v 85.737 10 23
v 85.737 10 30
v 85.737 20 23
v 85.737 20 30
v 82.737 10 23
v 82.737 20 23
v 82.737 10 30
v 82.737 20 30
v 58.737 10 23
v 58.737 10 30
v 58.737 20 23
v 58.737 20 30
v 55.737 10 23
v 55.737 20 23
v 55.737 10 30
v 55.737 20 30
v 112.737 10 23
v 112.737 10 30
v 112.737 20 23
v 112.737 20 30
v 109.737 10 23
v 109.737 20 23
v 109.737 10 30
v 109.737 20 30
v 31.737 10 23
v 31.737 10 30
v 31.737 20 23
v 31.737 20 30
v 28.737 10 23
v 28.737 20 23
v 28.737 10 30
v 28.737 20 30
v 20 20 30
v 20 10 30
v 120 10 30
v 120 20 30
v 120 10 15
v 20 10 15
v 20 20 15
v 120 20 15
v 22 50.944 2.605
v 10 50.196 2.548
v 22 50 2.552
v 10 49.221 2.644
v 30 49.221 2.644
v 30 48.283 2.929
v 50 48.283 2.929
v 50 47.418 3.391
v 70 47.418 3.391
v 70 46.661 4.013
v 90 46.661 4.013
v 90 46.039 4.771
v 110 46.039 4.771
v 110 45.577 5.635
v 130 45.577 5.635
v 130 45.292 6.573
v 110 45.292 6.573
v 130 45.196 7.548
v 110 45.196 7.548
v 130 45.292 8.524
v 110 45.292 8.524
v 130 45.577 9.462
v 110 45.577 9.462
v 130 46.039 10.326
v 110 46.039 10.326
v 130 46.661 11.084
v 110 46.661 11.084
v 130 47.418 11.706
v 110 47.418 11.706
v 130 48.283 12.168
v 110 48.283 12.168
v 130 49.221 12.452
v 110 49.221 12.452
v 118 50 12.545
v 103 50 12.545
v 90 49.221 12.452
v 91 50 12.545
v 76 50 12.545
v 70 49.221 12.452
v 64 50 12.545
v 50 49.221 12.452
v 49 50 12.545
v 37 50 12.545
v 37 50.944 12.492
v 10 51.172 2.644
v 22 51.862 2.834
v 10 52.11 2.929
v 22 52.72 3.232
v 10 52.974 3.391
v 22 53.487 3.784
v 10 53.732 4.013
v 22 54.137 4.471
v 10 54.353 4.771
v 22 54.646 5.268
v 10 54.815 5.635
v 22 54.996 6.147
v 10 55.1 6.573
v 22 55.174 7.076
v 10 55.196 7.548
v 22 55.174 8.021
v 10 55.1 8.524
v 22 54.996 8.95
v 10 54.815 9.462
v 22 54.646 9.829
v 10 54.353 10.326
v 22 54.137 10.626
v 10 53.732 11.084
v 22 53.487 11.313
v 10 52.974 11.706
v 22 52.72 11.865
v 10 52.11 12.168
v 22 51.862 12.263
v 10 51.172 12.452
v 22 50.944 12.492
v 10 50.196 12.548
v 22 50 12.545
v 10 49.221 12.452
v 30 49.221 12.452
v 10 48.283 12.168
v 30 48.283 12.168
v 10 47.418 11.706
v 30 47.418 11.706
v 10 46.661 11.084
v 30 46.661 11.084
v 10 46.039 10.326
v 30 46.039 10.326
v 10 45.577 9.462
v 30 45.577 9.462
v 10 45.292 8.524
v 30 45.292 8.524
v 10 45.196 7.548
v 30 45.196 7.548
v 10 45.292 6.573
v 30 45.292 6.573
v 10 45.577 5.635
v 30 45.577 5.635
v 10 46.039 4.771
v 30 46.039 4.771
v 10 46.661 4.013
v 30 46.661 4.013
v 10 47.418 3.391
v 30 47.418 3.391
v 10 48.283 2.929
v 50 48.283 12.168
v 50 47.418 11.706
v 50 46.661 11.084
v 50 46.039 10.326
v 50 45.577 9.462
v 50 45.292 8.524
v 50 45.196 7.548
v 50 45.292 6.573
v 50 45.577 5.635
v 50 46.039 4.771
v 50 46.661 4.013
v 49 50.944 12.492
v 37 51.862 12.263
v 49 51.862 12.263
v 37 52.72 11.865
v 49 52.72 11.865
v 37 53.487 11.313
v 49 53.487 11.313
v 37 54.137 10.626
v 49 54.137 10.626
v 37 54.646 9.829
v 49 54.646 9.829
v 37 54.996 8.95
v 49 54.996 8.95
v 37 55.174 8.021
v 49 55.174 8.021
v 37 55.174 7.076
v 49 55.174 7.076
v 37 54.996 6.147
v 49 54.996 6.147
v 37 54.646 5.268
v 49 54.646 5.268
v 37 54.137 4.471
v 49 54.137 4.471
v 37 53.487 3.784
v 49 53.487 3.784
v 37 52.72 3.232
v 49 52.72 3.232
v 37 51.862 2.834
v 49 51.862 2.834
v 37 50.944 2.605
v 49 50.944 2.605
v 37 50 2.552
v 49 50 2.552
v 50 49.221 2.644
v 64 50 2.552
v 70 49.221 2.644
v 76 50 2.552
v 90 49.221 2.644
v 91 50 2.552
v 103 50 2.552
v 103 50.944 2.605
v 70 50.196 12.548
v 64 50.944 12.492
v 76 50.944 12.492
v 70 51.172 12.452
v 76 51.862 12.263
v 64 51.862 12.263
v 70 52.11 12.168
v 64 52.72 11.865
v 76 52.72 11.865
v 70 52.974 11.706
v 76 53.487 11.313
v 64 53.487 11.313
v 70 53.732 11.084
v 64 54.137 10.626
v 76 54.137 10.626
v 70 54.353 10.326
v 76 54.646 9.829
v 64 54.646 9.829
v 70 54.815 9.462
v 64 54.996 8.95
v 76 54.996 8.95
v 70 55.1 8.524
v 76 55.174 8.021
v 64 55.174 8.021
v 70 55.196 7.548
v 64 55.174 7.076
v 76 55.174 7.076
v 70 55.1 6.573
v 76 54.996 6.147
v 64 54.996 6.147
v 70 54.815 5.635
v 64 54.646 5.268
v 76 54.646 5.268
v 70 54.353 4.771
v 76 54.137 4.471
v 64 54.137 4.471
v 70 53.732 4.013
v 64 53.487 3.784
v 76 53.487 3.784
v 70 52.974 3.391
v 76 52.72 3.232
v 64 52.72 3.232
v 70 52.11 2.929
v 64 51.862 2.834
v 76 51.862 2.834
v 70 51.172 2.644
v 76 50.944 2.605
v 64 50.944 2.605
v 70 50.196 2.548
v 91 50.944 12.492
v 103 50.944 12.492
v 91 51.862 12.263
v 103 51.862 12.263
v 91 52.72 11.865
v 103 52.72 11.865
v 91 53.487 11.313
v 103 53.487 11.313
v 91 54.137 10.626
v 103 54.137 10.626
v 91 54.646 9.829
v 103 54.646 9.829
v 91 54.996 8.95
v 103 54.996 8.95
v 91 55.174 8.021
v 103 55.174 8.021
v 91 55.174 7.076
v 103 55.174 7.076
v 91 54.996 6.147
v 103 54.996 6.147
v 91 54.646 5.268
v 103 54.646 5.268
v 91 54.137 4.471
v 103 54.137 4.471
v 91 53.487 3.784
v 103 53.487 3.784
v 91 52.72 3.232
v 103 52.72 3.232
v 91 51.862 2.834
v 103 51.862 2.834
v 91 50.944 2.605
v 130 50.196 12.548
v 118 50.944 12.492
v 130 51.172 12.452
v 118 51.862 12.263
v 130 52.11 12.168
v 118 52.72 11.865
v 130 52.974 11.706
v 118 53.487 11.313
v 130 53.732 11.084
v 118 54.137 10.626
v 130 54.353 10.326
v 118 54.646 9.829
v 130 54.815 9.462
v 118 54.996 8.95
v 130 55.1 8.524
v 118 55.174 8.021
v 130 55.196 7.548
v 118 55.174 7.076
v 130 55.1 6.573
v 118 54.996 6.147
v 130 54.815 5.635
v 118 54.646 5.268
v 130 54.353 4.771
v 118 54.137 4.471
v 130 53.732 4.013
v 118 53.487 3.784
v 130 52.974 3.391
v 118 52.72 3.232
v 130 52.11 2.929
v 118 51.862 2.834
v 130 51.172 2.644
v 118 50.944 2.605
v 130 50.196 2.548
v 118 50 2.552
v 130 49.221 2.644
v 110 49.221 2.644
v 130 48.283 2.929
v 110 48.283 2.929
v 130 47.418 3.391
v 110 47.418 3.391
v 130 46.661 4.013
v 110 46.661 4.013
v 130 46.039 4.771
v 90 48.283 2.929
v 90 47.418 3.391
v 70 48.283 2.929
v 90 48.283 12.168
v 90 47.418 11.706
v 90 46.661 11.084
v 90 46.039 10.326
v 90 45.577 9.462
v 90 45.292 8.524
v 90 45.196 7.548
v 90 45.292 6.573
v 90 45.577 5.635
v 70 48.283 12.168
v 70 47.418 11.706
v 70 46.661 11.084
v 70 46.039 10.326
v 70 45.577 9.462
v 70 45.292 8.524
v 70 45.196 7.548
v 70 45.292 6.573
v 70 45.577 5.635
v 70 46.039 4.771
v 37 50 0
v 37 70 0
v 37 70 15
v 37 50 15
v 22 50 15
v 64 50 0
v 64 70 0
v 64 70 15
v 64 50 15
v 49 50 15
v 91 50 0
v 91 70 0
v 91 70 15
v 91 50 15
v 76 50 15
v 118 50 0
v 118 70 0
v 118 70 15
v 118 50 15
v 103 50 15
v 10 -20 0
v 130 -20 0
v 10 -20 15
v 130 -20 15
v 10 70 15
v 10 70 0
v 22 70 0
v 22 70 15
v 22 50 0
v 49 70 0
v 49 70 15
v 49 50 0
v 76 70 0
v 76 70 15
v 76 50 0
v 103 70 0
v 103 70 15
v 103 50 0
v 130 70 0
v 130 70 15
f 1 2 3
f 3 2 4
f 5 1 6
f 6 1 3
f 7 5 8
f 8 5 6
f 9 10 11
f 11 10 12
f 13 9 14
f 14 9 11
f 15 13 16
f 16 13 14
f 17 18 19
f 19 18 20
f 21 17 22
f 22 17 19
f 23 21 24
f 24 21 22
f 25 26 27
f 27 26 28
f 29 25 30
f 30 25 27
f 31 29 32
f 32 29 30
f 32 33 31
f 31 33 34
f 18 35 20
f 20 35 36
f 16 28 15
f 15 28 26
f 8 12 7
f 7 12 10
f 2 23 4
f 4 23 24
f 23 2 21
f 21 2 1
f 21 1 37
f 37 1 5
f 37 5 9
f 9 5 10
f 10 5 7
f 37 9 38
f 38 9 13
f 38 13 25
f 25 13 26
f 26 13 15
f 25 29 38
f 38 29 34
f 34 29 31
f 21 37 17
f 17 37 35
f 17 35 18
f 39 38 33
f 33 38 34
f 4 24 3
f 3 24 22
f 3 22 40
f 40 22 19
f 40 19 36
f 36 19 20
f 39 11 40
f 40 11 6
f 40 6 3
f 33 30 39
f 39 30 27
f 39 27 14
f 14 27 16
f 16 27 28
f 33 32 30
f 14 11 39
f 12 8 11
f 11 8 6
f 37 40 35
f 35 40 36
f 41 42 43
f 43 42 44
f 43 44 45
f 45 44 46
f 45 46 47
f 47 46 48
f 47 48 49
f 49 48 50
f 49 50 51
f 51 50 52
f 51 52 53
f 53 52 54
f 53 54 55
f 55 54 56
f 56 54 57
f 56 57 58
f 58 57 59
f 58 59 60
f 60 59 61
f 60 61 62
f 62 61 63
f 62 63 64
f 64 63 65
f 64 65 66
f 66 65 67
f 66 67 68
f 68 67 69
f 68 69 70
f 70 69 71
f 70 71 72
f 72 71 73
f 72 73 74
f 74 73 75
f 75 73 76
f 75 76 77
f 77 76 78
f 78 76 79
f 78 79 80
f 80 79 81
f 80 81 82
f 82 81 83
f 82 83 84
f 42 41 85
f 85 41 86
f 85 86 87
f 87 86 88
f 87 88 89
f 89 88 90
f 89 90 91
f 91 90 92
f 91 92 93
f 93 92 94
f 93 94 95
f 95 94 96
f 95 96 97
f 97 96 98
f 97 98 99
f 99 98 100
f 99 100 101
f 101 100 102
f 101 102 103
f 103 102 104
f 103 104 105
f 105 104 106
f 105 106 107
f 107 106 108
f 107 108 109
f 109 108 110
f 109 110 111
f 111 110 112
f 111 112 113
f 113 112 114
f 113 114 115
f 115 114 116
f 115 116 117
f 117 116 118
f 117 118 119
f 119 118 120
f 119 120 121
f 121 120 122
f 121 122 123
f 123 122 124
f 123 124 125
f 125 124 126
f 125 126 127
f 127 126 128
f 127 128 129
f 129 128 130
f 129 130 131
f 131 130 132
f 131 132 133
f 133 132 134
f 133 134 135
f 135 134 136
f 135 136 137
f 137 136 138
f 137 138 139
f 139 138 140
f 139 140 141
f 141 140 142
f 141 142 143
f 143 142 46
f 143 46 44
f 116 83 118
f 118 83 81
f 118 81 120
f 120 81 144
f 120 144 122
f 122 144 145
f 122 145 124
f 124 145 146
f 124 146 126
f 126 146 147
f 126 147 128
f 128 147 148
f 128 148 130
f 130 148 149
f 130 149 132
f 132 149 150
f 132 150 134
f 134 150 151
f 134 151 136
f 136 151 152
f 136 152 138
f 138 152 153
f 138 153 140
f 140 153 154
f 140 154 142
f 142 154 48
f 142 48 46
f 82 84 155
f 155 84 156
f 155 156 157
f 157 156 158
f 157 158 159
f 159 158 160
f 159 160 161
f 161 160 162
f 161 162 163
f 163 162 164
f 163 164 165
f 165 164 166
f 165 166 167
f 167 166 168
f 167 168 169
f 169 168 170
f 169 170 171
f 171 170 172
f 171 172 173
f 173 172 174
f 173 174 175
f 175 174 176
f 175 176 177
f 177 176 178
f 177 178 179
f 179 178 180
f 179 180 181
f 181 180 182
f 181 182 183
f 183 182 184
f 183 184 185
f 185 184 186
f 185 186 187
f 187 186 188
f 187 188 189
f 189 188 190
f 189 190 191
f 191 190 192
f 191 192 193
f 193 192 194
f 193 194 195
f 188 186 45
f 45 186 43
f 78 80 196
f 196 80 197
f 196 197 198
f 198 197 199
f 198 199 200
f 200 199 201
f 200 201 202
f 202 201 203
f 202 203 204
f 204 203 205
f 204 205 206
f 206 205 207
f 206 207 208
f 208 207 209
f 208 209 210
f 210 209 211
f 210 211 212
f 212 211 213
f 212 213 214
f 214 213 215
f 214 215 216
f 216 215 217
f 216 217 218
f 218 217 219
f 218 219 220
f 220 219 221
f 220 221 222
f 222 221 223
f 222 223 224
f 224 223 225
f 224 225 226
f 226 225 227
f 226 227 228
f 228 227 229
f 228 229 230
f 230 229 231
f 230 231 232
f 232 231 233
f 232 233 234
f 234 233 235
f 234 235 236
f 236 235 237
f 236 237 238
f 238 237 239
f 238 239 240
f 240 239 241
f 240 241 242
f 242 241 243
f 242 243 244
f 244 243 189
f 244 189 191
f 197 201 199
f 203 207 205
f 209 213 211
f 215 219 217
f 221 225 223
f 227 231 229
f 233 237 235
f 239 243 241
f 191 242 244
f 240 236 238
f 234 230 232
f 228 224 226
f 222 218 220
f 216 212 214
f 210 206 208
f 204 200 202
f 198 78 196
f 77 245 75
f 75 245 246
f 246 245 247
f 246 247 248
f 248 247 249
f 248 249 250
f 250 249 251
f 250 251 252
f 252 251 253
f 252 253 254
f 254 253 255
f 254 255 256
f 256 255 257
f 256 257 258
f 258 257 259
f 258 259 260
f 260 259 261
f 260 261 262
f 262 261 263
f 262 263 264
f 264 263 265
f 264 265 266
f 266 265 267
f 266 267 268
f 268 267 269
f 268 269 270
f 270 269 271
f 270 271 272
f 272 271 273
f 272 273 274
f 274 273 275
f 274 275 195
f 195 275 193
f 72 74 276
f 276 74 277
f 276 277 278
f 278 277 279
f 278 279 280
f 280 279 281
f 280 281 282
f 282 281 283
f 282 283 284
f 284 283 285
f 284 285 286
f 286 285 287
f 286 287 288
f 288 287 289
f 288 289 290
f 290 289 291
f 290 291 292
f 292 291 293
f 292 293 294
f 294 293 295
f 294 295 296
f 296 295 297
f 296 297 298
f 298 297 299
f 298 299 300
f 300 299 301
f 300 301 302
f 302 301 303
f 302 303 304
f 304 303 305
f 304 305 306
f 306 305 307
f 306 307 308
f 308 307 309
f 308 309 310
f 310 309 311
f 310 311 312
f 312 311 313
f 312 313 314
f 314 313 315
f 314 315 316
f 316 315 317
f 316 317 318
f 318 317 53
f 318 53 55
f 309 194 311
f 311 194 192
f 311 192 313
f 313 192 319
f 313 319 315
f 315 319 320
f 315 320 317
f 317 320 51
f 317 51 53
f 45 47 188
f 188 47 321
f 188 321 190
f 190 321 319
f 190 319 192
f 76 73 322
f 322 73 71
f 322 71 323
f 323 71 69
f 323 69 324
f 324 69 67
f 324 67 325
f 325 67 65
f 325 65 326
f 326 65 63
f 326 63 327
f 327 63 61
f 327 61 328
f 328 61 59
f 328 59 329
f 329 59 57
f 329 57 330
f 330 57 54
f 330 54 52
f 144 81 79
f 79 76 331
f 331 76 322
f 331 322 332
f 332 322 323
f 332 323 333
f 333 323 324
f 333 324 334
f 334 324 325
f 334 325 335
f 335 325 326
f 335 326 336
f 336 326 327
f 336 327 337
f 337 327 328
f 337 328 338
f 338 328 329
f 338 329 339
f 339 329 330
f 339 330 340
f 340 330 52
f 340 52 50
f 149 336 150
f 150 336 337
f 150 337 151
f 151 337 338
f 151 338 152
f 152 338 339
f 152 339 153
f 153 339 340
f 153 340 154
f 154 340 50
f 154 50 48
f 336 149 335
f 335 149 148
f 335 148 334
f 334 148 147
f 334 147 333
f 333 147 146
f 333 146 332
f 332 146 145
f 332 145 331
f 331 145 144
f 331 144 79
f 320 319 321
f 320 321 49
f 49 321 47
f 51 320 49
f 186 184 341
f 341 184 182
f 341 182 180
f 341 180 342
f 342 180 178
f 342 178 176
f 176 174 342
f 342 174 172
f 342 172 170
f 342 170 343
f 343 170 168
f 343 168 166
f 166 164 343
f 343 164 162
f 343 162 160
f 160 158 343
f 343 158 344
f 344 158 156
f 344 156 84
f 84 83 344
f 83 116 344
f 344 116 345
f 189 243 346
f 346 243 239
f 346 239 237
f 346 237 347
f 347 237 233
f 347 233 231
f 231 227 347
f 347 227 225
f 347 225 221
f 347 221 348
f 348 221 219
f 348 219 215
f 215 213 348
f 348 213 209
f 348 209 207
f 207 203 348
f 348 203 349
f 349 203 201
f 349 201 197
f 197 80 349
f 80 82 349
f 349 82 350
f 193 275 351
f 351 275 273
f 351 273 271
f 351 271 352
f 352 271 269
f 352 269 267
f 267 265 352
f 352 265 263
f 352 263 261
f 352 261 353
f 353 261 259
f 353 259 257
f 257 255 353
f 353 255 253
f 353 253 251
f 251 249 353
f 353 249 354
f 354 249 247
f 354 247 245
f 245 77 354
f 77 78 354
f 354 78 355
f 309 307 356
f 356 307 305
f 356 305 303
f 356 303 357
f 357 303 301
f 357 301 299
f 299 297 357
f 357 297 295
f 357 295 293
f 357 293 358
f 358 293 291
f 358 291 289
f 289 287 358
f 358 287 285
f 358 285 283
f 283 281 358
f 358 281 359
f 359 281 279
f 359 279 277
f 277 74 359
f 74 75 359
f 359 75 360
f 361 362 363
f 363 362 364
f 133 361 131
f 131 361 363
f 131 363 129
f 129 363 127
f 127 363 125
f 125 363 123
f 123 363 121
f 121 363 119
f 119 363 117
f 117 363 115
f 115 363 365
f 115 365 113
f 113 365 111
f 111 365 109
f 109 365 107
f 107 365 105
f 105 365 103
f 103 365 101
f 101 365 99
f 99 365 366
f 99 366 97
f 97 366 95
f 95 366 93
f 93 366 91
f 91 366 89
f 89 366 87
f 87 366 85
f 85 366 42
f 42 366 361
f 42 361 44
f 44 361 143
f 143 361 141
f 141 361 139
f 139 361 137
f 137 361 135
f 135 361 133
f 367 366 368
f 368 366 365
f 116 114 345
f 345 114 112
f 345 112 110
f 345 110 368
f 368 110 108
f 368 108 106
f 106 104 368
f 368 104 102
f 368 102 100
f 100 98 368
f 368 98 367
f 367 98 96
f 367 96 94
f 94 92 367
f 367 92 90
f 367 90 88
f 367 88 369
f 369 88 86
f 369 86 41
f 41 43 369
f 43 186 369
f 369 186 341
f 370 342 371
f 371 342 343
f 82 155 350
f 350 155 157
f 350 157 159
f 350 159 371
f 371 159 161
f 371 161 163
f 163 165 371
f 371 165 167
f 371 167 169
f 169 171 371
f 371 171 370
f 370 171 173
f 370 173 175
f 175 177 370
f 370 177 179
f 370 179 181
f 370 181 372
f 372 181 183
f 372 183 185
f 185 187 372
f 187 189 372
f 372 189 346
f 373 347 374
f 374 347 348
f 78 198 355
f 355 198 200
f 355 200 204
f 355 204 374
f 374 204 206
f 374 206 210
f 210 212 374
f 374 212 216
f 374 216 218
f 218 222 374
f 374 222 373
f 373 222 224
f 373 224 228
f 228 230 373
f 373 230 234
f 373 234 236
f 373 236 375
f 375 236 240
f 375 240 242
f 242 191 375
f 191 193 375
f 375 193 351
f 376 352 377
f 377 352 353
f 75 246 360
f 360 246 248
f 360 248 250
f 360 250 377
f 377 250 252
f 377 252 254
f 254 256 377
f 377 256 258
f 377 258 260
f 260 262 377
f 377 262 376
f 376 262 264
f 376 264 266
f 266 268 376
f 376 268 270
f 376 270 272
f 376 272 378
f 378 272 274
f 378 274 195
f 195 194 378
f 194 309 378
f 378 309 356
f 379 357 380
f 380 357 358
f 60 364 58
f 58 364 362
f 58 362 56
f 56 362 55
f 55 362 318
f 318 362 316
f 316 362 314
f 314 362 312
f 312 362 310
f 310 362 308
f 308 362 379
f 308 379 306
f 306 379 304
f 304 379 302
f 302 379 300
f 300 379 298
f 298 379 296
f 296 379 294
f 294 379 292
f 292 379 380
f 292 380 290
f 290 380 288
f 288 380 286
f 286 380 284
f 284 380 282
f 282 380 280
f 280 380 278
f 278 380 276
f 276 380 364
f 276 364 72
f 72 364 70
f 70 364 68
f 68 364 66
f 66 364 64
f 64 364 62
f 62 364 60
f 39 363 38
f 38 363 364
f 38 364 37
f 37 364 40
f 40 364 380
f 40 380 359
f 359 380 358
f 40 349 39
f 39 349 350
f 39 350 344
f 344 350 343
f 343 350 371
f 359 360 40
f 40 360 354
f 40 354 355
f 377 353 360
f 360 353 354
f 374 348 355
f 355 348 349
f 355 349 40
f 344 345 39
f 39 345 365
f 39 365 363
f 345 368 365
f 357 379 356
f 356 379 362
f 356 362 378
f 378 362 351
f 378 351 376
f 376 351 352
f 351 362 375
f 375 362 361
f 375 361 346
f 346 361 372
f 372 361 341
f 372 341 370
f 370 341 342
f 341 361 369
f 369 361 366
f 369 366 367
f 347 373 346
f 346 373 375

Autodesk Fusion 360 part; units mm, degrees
sketch "Sketch1" plane through (0, 0, 0) normal (0, 0, 1) x (1, 0, 0)
  line L0 (130, 0) -> (130, 50)
  line L1 (130, 50) -> (130, 70)
  line L2 (130, 70) -> (118, 70)
  line L3 (118, 70) -> (118, 50)
  line L4 (118, 50) -> (103, 50)
  line L5 (103, 50) -> (103, 70)
  line L6 (103, 70) -> (91, 70)
  line L7 (91, 70) -> (91, 50)
  line L8 (91, 50) -> (76, 50)
  line L9 (76, 50) -> (76, 70)
  line L10 (76, 70) -> (64, 70)
  line L11 (64, 70) -> (64, 50)
  line L12 (64, 50) -> (49, 50)
  line L13 (49, 50) -> (49, 70)
  line L14 (49, 70) -> (37, 70)
  line L15 (37, 70) -> (37, 50)
  line L16 (37, 50) -> (22, 50)
  line L17 (22, 50) -> (22, 70)
  line L18 (22, 70) -> (10, 70)
  line L19 (10, 70) -> (10, 50)
  line L20 (10, 50) -> (10, 0)
  line L21 (10, 0) -> (10, -20)
  line L22 (10, -20) -> (130, -20)
  line L23 (130, -20) -> (130, 0)
  dimension "d1" = 12
  dimension "d2" = 15
  dimension "d3" = 12
  dimension "d4" = 15
  dimension "d5" = 12
  dimension "d6" = 15
  dimension "d7" = 12
  dimension "d8" = 15
  dimension "d9" = 12
  dimension "d11" = 20
  dimension "d14" = 20
  dimension "d15" = 20
  dimension "d16" = 20
  dimension "d17" = 20
  dimension "d18" = 20
  dimension "d19" = 20
  dimension "d20" = 20
  dimension "d21" = 20
  dimension "d49" = 120
  dimension "d50" = 70
  dimension "d51" = 70
extrude "Extrude1" add sketch "Sketch1" along normal blind 15
hole "Hole1" at (10, 50.1961, 7.5484) direction (1, 0, 0) diameter 10 depth 120 tip angle 180
sketch "Sketch2" plane through (0, 0, 15) normal (0, 0, 1) x (-1, 0, 0)
  line L0 (-130, 20) -> (-130, -70)
  line L1 (-130, -70) -> (-118, -70)
  line L2 (-118, -70) -> (-118, -50)
  line L3 (-118, -50) -> (-103, -50)
  line L4 (-103, -50) -> (-103, -70)
  line L5 (-103, -70) -> (-91, -70)
  line L6 (-91, -70) -> (-91, -50)
  line L7 (-91, -50) -> (-76, -50)
  line L8 (-76, -50) -> (-76, -70)
  line L9 (-76, -70) -> (-64, -70)
  line L10 (-64, -70) -> (-64, -50)
  line L11 (-64, -50) -> (-49, -50)
  line L12 (-49, -50) -> (-49, -70)
  line L13 (-49, -70) -> (-37, -70)
  line L14 (-37, -70) -> (-37, -50)
  line L15 (-37, -50) -> (-22, -50)
  line L16 (-22, -50) -> (-22, -70)
  line L17 (-22, -70) -> (-10, -70)
  line L18 (-10, -70) -> (-10, 20)
  line L19 (-20, -20) -> (-120, -20)
  line L20 (-120, -20) -> (-120, -10)
  line L21 (-120, -10) -> (-20, -10)
  line L22 (-20, -10) -> (-20, -20)
  line L23 (-10, 20) -> (-130, 20)
  dimension "d28" = 100
  dimension "d29" = 10
extrude "Extrude2" add sketch "Sketch2" along normal blind 15 contours L19 L20 L21 L22
sketch "Sketch3" plane through (0, 20, 0) normal (0, 1, 0) x (-1, 0, 0)
  line L0 (-120, 15) -> (-20, 15)
  line L1 (-20, 15) -> (-20, 30)
  line L2 (-20, 30) -> (-120, 30)
  line L3 (-120, 30) -> (-120, 15)
  line L4 (-112.7366, 30) -> (-109.7366, 30)
  line L5 (-109.7366, 30) -> (-109.7366, 23)
  line L6 (-109.7366, 23) -> (-112.7366, 23)
  line L7 (-112.7366, 23) -> (-112.7366, 30)
  line L8 (-85.7366, 30) -> (-82.7366, 30)
  line L9 (-82.7366, 30) -> (-82.7366, 23)
  line L10 (-82.7366, 23) -> (-85.7366, 23)
  line L11 (-85.7366, 23) -> (-85.7366, 30)
  line L12 (-58.7366, 30) -> (-55.7366, 30)
  line L13 (-55.7366, 30) -> (-55.7366, 23)
  line L14 (-55.7366, 23) -> (-58.7366, 23)
  line L15 (-58.7366, 23) -> (-58.7366, 30)
  line L16 (-31.7366, 30) -> (-28.7366, 30)
  line L17 (-28.7366, 30) -> (-28.7366, 23)
  line L18 (-28.7366, 23) -> (-31.7366, 23)
  line L19 (-31.7366, 23) -> (-31.7366, 30)
  dimension "d32" = 7
  dimension "d33" = 3
  dimension "d34" = 7
  dimension "d35" = 3
  dimension "d36" = 7
  dimension "d37" = 3
  dimension "d38" = 7
  dimension "d39" = 3
  dimension "d40" = 24
  dimension "d41" = 24
  dimension "d42" = 24
  dimension "d43" = 7.2634
extrude "Extrude3" cut sketch "Sketch3" against normal blind 20 contours L2 L4 L5 L6 L7 | L2 L16 L17 L18 L19 | L2 L8 L9 L10 L11 | L2 L12 L13 L14 L15
sketch "Sketch4" plane through (0, 0, 15) normal (0, 0, 1) x (-1, 0, 0)
  line L0 (-20, -10) -> (-20, -20)
  line L1 (-20, -20) -> (-120, -20)
  line L2 (-120, -20) -> (-120, -10)
  line L3 (-120, -10) -> (-20, -10)
  line L4 (-130, 20) -> (-130, -70)
  line L5 (-130, -70) -> (-118, -70)
  line L6 (-118, -70) -> (-118, -50)
  line L7 (-118, -50) -> (-103, -50)
  line L8 (-103, -50) -> (-103, -70)
  line L9 (-103, -70) -> (-91, -70)
  line L10 (-91, -70) -> (-91, -50)
  line L11 (-91, -50) -> (-76, -50)
  line L12 (-76, -50) -> (-76, -70)
  line L13 (-76, -70) -> (-64, -70)
  line L14 (-64, -70) -> (-64, -50)
  line L15 (-64, -50) -> (-49, -50)
  line L16 (-49, -50) -> (-49, -70)
  line L17 (-49, -70) -> (-37, -70)
  line L18 (-37, -70) -> (-37, -50)
  line L19 (-37, -50) -> (-22, -50)
  line L20 (-22, -50) -> (-22, -70)
  line L21 (-22, -70) -> (-10, -70)
  line L22 (-10, -70) -> (-10, 20)
  line L23 (-10, 20) -> (-130, 20)
